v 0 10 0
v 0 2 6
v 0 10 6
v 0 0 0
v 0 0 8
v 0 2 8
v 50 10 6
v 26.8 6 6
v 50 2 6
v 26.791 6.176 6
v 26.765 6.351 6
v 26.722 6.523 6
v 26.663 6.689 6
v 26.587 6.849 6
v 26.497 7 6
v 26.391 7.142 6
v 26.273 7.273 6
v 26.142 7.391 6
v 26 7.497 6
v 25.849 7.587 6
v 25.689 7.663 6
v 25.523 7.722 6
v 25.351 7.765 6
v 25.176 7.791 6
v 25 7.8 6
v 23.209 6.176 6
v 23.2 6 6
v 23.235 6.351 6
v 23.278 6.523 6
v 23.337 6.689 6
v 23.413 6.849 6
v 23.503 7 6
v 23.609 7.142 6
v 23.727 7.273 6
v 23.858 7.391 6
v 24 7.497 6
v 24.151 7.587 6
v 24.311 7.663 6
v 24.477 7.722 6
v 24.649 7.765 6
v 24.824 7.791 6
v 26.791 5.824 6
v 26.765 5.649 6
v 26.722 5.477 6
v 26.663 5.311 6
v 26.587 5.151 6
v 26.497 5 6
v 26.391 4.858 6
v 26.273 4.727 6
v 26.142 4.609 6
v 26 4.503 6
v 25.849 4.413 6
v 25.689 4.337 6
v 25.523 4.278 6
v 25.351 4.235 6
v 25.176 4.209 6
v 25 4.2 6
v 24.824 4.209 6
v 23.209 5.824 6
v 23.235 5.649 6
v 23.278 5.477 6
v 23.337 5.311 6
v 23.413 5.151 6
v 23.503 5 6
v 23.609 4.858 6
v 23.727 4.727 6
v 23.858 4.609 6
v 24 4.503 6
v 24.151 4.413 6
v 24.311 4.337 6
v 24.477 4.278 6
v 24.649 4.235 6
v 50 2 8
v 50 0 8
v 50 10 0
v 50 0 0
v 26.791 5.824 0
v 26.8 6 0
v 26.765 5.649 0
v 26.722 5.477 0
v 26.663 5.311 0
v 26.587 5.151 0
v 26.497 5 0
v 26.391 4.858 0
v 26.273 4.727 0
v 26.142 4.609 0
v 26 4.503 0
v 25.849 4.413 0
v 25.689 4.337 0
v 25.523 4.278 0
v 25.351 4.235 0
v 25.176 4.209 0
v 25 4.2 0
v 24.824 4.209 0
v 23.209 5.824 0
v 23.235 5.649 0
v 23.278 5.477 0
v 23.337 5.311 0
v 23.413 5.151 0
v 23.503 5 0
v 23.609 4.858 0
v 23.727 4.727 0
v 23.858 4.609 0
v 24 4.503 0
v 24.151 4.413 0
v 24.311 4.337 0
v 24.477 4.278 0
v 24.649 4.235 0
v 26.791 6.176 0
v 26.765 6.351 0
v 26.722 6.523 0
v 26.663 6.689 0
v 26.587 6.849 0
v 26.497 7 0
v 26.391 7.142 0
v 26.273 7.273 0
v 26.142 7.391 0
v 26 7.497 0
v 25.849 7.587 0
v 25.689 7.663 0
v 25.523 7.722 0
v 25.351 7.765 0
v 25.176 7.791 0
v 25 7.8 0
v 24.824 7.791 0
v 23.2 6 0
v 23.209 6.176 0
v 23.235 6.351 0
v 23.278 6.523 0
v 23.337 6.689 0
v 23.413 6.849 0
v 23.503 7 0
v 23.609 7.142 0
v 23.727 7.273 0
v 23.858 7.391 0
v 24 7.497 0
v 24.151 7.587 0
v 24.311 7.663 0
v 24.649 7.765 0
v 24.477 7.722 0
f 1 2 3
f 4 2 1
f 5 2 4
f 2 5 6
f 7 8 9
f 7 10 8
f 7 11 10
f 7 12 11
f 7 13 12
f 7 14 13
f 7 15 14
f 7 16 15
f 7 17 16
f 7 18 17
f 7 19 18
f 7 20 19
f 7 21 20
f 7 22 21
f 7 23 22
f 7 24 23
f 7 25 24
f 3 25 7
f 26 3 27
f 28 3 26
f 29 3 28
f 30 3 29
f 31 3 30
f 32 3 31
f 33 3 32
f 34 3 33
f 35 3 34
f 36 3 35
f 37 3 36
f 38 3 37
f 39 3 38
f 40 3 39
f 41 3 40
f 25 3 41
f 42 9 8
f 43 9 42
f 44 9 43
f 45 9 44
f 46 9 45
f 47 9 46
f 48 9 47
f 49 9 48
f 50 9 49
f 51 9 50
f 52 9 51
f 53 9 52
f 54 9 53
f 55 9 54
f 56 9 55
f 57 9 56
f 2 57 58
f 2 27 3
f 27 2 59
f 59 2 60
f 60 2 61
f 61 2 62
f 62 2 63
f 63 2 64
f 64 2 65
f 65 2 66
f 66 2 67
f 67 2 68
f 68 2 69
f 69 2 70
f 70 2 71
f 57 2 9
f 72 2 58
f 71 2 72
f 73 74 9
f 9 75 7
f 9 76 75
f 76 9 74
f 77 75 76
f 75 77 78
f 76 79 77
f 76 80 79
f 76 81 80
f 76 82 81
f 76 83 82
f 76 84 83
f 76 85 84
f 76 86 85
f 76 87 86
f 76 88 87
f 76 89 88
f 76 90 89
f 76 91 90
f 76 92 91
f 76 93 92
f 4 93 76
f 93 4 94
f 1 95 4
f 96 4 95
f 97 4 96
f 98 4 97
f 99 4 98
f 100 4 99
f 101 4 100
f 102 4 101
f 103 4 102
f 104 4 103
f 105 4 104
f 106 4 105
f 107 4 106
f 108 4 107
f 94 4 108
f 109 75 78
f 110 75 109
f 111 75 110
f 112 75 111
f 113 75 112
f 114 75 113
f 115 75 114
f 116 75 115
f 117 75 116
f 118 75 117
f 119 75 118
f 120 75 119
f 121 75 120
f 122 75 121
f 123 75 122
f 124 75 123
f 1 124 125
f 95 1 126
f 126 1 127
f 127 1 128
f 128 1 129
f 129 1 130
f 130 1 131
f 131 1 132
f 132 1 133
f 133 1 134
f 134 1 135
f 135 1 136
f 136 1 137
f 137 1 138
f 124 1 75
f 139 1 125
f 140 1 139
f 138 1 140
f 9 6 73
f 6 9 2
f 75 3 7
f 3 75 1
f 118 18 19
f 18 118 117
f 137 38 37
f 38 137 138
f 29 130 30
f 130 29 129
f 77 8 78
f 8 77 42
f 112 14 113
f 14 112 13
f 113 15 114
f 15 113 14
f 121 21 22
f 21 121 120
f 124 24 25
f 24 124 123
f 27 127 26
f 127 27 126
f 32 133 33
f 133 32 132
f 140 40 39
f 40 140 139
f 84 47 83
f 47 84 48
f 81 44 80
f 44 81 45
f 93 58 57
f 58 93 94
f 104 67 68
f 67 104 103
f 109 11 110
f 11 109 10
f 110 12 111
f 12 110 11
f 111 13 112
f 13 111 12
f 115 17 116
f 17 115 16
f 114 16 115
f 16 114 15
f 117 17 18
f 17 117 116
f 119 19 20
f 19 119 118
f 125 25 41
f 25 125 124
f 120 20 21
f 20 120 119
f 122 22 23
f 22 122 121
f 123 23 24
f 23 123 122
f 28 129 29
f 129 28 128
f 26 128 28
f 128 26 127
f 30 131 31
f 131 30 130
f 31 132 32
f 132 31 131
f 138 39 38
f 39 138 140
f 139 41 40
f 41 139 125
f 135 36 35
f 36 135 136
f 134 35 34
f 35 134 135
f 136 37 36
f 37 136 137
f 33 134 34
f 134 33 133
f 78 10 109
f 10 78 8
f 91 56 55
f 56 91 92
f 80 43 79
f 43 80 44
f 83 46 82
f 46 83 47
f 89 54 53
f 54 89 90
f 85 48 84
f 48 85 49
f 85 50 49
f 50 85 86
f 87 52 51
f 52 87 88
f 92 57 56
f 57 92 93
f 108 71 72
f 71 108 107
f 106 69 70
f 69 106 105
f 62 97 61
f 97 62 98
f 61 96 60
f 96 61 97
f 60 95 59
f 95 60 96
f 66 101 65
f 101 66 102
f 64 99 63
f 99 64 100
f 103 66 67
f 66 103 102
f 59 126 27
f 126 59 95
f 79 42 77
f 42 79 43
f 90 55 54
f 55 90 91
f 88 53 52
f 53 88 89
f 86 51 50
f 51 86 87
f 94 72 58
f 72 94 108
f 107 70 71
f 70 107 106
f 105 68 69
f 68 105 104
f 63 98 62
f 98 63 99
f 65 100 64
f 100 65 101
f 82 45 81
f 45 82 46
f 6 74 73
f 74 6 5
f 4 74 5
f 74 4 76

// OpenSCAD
$fn = 64;

translate([0, 2, 0])
    difference() {
        cube([50, 8, 6]);
        translate([50/2, 8/2, 0])
            cylinder(d = 3.6, 6);
        }
cube([50, 2, 8]);
